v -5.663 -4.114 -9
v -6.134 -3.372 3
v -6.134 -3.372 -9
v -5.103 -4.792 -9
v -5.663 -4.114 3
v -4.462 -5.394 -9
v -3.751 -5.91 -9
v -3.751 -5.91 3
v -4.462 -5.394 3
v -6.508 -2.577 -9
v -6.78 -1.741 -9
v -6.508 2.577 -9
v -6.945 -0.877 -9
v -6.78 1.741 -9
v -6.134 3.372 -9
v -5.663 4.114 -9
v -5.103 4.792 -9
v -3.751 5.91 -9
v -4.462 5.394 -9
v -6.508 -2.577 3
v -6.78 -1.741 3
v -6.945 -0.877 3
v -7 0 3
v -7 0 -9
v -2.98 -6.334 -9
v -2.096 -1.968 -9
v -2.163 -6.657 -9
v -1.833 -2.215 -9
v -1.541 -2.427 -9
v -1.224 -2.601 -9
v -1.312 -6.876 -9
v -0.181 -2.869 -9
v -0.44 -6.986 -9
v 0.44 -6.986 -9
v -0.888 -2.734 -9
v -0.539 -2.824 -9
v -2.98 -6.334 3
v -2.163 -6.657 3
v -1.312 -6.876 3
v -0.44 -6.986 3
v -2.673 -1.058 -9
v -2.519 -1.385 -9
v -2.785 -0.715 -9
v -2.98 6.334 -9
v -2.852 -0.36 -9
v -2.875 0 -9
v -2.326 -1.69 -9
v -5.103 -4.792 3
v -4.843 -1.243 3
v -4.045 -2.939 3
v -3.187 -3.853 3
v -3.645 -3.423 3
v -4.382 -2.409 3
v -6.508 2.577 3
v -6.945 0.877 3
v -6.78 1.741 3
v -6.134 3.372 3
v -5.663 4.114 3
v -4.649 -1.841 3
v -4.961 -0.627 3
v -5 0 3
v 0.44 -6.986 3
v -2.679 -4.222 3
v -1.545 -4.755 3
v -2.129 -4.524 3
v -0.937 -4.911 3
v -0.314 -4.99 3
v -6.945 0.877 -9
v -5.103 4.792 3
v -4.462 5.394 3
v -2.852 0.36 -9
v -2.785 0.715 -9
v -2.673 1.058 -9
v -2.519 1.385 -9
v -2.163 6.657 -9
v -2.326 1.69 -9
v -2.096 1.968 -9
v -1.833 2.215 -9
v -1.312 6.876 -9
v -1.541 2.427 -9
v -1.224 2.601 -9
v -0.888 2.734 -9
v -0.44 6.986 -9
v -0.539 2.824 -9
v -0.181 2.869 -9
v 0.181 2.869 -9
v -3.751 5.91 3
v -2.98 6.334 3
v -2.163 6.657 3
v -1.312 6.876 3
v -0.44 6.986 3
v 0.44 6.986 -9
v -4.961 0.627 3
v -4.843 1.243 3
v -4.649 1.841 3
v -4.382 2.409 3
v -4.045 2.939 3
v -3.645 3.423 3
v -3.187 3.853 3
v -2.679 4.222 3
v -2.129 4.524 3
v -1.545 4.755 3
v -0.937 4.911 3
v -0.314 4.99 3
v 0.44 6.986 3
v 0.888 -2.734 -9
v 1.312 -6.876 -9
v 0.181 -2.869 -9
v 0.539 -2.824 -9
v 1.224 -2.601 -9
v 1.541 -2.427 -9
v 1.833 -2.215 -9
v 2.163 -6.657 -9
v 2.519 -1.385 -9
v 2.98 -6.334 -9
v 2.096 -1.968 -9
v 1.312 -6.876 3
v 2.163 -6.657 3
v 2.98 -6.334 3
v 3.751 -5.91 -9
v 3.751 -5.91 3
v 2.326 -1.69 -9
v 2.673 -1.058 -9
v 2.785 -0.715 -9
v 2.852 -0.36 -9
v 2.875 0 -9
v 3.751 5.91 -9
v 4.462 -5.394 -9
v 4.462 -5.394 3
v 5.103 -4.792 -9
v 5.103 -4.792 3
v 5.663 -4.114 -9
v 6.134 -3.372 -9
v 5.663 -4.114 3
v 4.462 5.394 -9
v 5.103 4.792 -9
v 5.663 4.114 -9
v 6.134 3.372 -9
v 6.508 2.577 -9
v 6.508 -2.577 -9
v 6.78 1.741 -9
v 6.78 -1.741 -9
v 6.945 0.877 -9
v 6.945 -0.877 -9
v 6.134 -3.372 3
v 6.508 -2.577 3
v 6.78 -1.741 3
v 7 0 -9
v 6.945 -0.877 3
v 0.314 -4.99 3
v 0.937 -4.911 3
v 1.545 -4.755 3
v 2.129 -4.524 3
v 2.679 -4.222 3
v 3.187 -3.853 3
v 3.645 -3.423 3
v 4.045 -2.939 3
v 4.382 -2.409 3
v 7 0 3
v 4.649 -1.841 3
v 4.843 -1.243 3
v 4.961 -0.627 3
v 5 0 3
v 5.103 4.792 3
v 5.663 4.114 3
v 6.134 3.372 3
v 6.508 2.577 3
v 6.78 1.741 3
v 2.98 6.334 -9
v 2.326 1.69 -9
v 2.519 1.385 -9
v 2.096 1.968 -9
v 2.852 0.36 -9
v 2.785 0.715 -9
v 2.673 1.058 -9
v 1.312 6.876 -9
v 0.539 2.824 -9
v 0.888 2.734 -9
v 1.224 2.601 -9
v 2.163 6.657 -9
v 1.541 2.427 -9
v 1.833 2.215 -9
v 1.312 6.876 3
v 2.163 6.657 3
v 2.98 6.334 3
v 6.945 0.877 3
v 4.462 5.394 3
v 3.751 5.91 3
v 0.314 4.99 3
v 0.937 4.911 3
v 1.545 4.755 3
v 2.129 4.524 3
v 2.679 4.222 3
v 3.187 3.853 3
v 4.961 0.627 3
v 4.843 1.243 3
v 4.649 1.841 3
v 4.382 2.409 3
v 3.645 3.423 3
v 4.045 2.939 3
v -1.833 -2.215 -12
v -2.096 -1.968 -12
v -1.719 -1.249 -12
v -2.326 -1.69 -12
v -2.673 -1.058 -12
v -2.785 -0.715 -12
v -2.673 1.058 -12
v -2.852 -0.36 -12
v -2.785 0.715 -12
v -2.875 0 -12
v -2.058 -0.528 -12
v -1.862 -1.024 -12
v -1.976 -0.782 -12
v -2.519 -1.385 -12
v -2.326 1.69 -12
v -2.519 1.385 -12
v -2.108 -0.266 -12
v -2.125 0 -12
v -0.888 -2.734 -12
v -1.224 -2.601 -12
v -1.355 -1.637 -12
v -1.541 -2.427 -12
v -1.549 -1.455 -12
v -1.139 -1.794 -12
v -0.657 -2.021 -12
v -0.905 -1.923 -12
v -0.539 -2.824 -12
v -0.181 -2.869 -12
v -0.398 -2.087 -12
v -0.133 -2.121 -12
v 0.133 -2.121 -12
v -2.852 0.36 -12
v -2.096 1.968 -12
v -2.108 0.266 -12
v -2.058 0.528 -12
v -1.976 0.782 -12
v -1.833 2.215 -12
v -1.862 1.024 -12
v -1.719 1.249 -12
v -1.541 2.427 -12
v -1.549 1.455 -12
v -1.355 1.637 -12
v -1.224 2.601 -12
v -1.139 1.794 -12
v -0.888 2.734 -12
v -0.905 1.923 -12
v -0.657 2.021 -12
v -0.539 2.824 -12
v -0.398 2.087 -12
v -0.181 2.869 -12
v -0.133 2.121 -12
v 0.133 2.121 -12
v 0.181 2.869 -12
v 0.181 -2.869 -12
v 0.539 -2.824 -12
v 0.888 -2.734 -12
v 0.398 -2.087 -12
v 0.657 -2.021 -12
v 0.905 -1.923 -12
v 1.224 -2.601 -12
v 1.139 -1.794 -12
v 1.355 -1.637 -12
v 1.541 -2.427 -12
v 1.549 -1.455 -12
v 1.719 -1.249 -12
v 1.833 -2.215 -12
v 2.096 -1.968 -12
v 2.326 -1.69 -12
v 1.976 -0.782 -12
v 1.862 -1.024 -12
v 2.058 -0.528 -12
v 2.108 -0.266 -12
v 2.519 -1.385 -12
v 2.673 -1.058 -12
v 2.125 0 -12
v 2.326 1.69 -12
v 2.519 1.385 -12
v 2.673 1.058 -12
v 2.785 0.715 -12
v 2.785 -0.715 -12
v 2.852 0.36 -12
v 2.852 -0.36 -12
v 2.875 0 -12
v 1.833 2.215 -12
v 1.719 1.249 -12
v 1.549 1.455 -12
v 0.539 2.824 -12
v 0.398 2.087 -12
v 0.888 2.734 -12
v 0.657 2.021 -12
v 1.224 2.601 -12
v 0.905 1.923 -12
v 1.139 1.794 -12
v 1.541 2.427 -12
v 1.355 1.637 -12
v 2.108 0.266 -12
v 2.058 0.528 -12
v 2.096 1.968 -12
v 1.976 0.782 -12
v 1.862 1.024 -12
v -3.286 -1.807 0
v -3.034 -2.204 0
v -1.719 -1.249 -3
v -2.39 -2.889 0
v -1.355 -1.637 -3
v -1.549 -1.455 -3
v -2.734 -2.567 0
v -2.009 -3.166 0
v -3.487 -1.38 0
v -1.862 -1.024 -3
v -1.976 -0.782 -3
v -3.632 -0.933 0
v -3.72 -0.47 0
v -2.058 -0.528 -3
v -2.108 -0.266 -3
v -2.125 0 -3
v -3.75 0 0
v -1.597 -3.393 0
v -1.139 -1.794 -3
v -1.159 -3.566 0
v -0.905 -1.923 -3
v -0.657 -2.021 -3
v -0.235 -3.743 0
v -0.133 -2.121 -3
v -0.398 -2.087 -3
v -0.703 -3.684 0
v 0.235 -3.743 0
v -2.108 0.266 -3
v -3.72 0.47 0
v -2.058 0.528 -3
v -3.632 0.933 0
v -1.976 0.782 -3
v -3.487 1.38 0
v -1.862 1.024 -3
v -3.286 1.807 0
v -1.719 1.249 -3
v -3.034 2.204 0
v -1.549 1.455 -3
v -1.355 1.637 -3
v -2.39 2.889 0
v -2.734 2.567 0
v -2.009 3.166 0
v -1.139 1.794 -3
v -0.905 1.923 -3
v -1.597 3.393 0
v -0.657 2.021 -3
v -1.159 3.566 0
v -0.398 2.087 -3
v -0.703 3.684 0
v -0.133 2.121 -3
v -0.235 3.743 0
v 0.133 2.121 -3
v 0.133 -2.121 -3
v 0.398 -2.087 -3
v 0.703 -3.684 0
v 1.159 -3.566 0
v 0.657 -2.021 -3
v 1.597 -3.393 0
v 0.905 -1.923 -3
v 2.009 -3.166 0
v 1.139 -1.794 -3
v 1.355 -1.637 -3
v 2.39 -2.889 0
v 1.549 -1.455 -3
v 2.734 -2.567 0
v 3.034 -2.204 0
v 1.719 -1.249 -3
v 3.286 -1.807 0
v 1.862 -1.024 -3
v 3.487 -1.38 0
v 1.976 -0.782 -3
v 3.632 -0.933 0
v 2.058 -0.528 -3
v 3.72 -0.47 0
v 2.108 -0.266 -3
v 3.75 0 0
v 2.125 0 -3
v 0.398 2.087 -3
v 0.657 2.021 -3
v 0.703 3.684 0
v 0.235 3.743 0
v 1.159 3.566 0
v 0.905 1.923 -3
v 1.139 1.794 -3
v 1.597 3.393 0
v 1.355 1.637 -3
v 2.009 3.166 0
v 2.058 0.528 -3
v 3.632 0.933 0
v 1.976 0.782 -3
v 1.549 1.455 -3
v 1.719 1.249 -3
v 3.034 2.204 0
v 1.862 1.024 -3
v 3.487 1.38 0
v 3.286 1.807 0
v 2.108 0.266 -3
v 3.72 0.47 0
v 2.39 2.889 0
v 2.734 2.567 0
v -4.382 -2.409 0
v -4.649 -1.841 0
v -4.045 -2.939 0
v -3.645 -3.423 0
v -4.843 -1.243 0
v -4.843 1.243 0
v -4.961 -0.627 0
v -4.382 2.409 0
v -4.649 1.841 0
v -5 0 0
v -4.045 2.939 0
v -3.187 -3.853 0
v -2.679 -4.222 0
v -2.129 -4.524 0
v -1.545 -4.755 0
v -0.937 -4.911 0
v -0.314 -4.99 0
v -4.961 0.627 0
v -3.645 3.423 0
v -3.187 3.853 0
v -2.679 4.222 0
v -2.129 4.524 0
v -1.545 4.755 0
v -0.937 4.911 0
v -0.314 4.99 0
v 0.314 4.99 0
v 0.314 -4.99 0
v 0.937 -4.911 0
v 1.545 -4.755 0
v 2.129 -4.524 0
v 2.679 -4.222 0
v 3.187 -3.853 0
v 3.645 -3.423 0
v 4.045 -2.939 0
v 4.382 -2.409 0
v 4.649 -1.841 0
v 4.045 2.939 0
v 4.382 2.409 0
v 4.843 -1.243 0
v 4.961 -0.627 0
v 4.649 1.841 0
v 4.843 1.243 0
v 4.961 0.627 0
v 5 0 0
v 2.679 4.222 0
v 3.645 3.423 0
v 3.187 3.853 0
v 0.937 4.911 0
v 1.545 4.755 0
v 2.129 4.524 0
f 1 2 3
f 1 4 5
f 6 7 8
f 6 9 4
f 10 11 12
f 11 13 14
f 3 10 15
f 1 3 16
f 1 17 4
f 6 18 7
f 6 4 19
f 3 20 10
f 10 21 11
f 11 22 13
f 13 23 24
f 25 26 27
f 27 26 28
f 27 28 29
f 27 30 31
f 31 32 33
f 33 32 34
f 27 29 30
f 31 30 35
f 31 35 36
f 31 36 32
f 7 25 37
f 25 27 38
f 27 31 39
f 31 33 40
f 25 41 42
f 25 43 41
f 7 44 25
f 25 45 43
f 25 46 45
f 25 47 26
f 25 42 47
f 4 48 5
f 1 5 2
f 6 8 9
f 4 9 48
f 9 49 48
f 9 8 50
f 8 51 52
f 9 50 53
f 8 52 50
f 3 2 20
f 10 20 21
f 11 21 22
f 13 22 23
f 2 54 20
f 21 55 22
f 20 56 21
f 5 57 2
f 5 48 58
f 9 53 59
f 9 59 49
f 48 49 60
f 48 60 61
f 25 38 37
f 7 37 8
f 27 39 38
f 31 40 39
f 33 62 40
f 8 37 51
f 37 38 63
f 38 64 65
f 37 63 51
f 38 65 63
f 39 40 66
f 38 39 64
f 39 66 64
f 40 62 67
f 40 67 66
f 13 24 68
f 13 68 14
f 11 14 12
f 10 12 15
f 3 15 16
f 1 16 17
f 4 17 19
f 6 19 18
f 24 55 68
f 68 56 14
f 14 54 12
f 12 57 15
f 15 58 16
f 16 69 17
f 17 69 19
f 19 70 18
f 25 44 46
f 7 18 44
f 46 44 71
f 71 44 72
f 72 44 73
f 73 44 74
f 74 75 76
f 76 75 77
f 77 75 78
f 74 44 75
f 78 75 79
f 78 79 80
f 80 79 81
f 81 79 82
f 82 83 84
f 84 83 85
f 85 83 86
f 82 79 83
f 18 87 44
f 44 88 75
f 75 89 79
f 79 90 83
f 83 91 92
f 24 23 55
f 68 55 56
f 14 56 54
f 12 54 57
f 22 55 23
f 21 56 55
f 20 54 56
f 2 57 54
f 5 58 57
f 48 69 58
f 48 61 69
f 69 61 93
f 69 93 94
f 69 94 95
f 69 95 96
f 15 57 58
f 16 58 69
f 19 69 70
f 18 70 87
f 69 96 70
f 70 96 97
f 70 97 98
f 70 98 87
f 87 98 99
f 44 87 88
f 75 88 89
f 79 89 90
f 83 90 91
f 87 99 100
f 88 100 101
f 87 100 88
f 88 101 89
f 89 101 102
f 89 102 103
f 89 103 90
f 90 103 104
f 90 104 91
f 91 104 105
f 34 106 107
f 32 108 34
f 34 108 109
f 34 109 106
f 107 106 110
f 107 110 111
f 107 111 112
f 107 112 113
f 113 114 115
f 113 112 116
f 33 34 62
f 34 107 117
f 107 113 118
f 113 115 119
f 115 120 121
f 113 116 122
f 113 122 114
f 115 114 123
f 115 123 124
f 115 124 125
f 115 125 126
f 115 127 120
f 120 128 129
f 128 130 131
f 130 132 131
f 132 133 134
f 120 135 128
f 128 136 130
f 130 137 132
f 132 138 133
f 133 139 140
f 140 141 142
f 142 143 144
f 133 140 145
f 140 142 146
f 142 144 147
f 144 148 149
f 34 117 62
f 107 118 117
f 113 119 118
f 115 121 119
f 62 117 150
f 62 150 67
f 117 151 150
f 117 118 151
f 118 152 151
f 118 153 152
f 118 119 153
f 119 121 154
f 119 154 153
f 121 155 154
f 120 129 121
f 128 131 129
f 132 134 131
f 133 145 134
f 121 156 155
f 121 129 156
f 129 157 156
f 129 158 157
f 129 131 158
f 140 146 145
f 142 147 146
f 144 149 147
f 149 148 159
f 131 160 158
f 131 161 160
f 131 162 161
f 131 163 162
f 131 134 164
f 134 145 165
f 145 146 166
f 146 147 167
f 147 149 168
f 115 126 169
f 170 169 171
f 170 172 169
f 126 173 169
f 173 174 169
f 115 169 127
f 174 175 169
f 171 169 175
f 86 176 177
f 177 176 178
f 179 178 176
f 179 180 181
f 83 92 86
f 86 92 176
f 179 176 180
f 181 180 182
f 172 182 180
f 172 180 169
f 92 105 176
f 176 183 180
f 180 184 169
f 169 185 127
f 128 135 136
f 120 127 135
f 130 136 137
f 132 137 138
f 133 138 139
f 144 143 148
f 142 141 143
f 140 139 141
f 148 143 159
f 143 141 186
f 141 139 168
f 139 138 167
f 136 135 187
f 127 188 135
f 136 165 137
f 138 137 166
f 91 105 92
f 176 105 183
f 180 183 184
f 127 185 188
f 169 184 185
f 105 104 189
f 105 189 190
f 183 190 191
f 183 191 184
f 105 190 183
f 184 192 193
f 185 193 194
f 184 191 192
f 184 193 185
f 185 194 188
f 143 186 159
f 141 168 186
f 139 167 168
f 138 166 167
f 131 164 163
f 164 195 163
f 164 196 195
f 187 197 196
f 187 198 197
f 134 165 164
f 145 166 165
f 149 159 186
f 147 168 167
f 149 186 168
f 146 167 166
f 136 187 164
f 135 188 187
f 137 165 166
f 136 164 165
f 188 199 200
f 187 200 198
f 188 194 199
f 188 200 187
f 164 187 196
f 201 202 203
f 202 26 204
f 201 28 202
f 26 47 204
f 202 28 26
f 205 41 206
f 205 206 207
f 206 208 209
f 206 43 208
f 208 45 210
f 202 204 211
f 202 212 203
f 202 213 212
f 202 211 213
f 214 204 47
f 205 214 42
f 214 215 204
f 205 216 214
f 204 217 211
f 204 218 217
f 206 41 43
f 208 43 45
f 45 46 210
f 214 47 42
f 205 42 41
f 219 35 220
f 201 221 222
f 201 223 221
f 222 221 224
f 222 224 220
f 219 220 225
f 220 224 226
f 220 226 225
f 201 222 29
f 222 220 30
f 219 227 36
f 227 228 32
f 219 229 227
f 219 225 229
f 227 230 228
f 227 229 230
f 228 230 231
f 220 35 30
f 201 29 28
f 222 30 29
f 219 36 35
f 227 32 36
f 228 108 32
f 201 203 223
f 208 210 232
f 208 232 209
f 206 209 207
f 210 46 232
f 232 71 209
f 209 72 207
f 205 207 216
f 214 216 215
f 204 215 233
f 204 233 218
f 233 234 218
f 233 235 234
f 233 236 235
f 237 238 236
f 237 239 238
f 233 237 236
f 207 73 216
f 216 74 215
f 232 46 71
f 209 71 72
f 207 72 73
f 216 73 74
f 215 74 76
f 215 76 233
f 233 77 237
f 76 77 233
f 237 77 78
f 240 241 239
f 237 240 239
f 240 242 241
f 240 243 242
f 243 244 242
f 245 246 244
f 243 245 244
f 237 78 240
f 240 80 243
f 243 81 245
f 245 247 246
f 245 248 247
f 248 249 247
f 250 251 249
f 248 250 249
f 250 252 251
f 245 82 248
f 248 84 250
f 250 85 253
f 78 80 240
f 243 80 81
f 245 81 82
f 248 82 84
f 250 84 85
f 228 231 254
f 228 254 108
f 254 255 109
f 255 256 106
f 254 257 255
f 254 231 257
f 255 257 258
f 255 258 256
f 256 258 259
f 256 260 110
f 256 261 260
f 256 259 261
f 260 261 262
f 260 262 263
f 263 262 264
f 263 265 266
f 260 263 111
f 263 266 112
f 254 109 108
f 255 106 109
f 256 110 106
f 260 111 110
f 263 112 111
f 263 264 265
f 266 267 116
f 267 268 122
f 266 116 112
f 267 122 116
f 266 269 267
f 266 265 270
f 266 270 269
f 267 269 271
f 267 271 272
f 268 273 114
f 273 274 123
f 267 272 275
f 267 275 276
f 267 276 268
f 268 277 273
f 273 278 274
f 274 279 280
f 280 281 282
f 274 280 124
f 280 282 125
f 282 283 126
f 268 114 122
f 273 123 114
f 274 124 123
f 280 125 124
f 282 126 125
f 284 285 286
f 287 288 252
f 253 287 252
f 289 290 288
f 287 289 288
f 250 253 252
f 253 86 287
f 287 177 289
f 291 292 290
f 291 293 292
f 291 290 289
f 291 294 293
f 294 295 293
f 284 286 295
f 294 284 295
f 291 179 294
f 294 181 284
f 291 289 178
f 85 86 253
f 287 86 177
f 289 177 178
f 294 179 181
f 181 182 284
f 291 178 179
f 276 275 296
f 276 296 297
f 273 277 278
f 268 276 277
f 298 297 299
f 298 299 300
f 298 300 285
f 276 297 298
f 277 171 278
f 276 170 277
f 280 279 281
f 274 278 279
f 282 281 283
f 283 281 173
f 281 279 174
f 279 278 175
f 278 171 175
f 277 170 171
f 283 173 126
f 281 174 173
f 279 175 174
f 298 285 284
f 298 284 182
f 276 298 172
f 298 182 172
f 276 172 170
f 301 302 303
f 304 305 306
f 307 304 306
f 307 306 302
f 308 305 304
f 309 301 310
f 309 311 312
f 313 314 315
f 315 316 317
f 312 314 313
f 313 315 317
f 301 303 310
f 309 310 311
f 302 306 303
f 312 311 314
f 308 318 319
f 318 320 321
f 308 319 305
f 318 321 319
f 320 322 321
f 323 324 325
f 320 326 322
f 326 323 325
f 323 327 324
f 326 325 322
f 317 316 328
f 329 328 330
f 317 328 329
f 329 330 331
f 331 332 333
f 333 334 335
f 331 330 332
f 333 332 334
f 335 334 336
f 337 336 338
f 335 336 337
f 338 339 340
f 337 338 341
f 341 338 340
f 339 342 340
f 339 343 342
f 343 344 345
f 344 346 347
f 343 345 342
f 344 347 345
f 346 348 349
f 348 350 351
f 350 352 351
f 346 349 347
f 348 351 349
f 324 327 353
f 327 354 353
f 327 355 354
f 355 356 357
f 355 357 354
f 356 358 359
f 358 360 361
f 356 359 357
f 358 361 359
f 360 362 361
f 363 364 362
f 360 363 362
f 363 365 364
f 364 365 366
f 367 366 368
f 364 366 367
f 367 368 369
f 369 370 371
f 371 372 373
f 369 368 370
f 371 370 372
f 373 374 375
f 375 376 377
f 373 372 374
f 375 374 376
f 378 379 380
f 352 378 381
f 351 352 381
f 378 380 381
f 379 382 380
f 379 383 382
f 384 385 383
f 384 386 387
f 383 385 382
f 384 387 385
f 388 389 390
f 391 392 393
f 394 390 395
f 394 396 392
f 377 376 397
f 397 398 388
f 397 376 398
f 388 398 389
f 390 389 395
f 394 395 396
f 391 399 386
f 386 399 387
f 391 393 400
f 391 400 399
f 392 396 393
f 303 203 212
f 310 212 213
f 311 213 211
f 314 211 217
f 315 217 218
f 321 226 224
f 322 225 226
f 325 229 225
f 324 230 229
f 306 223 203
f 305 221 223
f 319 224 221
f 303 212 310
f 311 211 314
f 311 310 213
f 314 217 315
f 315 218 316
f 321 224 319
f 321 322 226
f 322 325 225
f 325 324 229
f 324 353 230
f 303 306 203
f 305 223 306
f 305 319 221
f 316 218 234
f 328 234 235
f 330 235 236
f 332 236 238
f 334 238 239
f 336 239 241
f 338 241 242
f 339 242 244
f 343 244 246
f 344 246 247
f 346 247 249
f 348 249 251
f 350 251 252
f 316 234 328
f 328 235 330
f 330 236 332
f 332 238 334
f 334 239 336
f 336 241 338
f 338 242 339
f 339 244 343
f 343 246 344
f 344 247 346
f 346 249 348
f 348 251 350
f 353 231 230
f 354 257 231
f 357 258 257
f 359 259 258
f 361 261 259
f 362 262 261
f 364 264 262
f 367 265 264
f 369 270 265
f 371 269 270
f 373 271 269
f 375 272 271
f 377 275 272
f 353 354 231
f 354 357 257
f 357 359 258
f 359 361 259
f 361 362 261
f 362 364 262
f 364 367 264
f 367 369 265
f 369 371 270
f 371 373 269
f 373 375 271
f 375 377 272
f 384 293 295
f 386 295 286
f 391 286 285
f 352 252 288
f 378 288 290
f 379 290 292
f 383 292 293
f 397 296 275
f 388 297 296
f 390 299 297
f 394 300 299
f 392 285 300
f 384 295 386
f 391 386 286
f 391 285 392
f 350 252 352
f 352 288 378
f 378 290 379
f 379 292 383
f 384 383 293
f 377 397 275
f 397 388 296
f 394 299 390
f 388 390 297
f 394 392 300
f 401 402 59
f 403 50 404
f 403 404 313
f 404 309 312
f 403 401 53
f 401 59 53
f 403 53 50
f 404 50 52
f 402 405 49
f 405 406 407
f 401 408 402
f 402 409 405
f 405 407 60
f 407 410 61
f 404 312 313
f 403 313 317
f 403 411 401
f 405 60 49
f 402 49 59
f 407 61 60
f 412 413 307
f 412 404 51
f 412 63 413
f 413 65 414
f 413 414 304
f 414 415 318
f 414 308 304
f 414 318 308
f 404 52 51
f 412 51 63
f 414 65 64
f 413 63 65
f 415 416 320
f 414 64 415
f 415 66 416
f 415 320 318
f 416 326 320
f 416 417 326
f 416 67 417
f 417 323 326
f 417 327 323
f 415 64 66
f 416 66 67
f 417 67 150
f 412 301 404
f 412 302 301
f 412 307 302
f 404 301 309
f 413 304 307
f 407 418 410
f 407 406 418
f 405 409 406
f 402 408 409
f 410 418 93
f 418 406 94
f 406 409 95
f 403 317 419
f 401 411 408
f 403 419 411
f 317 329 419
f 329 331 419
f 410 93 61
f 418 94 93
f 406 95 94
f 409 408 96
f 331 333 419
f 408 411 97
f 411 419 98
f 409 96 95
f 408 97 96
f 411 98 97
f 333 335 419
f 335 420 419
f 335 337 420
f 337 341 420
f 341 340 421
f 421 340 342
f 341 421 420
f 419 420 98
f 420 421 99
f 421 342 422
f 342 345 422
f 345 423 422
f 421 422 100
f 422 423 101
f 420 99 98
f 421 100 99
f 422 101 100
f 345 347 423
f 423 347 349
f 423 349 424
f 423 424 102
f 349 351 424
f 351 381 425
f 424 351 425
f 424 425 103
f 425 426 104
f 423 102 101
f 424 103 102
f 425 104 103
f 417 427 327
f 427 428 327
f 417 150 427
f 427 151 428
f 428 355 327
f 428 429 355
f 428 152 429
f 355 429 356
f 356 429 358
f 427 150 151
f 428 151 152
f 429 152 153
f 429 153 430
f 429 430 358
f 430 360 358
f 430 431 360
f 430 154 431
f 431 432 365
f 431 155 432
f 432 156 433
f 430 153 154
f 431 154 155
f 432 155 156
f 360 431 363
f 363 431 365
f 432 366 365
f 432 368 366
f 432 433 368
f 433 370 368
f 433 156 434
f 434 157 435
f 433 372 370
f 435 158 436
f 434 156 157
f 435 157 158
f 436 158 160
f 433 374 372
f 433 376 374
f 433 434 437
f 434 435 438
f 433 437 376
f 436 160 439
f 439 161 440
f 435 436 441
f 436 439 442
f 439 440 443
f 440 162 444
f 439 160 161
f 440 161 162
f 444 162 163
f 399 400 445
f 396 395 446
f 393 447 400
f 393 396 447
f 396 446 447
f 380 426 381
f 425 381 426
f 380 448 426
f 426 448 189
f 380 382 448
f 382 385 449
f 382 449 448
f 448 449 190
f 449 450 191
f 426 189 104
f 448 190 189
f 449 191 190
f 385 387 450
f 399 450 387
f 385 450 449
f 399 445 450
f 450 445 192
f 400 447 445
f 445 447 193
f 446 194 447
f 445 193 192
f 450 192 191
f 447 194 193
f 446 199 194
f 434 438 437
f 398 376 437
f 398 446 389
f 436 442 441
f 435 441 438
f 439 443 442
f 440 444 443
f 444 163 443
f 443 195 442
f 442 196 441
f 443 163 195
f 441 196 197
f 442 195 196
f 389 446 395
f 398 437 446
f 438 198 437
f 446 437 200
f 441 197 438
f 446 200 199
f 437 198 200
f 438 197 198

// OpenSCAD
$fn = 50;

difference() {
	union() {
		translate(v = [0, 0, -9.0]) {
			cylinder(h = 12, r = 7.0);
		}
		#translate(v = [0, 0, -12.0]) {
			cylinder(h = 12, r = 2.875);
		}
	}
	union() {
		translate(v = [0, 0, 0]) {
			rotate(a = [0, 0, 0]) {
				difference() {
					union() {
						translate(v = [0, 0, -12.0]) {
							cylinder(h = 12, r = 2.0);
						}
						translate(v = [0, 0, -3]) {
							cylinder(h = 3, r1 = 2.125, r2 = 3.75);
						}
						translate(v = [0, 0, -12.0]) {
							cylinder(h = 12, r = 2.125);
						}
						translate(v = [0, 0, -12.0]) {
							cylinder(h = 12, r = 2.0);
						}
					}
					union();
				}
			}
		}
		#cylinder(h = 3, r = 5.0);
	}
}
